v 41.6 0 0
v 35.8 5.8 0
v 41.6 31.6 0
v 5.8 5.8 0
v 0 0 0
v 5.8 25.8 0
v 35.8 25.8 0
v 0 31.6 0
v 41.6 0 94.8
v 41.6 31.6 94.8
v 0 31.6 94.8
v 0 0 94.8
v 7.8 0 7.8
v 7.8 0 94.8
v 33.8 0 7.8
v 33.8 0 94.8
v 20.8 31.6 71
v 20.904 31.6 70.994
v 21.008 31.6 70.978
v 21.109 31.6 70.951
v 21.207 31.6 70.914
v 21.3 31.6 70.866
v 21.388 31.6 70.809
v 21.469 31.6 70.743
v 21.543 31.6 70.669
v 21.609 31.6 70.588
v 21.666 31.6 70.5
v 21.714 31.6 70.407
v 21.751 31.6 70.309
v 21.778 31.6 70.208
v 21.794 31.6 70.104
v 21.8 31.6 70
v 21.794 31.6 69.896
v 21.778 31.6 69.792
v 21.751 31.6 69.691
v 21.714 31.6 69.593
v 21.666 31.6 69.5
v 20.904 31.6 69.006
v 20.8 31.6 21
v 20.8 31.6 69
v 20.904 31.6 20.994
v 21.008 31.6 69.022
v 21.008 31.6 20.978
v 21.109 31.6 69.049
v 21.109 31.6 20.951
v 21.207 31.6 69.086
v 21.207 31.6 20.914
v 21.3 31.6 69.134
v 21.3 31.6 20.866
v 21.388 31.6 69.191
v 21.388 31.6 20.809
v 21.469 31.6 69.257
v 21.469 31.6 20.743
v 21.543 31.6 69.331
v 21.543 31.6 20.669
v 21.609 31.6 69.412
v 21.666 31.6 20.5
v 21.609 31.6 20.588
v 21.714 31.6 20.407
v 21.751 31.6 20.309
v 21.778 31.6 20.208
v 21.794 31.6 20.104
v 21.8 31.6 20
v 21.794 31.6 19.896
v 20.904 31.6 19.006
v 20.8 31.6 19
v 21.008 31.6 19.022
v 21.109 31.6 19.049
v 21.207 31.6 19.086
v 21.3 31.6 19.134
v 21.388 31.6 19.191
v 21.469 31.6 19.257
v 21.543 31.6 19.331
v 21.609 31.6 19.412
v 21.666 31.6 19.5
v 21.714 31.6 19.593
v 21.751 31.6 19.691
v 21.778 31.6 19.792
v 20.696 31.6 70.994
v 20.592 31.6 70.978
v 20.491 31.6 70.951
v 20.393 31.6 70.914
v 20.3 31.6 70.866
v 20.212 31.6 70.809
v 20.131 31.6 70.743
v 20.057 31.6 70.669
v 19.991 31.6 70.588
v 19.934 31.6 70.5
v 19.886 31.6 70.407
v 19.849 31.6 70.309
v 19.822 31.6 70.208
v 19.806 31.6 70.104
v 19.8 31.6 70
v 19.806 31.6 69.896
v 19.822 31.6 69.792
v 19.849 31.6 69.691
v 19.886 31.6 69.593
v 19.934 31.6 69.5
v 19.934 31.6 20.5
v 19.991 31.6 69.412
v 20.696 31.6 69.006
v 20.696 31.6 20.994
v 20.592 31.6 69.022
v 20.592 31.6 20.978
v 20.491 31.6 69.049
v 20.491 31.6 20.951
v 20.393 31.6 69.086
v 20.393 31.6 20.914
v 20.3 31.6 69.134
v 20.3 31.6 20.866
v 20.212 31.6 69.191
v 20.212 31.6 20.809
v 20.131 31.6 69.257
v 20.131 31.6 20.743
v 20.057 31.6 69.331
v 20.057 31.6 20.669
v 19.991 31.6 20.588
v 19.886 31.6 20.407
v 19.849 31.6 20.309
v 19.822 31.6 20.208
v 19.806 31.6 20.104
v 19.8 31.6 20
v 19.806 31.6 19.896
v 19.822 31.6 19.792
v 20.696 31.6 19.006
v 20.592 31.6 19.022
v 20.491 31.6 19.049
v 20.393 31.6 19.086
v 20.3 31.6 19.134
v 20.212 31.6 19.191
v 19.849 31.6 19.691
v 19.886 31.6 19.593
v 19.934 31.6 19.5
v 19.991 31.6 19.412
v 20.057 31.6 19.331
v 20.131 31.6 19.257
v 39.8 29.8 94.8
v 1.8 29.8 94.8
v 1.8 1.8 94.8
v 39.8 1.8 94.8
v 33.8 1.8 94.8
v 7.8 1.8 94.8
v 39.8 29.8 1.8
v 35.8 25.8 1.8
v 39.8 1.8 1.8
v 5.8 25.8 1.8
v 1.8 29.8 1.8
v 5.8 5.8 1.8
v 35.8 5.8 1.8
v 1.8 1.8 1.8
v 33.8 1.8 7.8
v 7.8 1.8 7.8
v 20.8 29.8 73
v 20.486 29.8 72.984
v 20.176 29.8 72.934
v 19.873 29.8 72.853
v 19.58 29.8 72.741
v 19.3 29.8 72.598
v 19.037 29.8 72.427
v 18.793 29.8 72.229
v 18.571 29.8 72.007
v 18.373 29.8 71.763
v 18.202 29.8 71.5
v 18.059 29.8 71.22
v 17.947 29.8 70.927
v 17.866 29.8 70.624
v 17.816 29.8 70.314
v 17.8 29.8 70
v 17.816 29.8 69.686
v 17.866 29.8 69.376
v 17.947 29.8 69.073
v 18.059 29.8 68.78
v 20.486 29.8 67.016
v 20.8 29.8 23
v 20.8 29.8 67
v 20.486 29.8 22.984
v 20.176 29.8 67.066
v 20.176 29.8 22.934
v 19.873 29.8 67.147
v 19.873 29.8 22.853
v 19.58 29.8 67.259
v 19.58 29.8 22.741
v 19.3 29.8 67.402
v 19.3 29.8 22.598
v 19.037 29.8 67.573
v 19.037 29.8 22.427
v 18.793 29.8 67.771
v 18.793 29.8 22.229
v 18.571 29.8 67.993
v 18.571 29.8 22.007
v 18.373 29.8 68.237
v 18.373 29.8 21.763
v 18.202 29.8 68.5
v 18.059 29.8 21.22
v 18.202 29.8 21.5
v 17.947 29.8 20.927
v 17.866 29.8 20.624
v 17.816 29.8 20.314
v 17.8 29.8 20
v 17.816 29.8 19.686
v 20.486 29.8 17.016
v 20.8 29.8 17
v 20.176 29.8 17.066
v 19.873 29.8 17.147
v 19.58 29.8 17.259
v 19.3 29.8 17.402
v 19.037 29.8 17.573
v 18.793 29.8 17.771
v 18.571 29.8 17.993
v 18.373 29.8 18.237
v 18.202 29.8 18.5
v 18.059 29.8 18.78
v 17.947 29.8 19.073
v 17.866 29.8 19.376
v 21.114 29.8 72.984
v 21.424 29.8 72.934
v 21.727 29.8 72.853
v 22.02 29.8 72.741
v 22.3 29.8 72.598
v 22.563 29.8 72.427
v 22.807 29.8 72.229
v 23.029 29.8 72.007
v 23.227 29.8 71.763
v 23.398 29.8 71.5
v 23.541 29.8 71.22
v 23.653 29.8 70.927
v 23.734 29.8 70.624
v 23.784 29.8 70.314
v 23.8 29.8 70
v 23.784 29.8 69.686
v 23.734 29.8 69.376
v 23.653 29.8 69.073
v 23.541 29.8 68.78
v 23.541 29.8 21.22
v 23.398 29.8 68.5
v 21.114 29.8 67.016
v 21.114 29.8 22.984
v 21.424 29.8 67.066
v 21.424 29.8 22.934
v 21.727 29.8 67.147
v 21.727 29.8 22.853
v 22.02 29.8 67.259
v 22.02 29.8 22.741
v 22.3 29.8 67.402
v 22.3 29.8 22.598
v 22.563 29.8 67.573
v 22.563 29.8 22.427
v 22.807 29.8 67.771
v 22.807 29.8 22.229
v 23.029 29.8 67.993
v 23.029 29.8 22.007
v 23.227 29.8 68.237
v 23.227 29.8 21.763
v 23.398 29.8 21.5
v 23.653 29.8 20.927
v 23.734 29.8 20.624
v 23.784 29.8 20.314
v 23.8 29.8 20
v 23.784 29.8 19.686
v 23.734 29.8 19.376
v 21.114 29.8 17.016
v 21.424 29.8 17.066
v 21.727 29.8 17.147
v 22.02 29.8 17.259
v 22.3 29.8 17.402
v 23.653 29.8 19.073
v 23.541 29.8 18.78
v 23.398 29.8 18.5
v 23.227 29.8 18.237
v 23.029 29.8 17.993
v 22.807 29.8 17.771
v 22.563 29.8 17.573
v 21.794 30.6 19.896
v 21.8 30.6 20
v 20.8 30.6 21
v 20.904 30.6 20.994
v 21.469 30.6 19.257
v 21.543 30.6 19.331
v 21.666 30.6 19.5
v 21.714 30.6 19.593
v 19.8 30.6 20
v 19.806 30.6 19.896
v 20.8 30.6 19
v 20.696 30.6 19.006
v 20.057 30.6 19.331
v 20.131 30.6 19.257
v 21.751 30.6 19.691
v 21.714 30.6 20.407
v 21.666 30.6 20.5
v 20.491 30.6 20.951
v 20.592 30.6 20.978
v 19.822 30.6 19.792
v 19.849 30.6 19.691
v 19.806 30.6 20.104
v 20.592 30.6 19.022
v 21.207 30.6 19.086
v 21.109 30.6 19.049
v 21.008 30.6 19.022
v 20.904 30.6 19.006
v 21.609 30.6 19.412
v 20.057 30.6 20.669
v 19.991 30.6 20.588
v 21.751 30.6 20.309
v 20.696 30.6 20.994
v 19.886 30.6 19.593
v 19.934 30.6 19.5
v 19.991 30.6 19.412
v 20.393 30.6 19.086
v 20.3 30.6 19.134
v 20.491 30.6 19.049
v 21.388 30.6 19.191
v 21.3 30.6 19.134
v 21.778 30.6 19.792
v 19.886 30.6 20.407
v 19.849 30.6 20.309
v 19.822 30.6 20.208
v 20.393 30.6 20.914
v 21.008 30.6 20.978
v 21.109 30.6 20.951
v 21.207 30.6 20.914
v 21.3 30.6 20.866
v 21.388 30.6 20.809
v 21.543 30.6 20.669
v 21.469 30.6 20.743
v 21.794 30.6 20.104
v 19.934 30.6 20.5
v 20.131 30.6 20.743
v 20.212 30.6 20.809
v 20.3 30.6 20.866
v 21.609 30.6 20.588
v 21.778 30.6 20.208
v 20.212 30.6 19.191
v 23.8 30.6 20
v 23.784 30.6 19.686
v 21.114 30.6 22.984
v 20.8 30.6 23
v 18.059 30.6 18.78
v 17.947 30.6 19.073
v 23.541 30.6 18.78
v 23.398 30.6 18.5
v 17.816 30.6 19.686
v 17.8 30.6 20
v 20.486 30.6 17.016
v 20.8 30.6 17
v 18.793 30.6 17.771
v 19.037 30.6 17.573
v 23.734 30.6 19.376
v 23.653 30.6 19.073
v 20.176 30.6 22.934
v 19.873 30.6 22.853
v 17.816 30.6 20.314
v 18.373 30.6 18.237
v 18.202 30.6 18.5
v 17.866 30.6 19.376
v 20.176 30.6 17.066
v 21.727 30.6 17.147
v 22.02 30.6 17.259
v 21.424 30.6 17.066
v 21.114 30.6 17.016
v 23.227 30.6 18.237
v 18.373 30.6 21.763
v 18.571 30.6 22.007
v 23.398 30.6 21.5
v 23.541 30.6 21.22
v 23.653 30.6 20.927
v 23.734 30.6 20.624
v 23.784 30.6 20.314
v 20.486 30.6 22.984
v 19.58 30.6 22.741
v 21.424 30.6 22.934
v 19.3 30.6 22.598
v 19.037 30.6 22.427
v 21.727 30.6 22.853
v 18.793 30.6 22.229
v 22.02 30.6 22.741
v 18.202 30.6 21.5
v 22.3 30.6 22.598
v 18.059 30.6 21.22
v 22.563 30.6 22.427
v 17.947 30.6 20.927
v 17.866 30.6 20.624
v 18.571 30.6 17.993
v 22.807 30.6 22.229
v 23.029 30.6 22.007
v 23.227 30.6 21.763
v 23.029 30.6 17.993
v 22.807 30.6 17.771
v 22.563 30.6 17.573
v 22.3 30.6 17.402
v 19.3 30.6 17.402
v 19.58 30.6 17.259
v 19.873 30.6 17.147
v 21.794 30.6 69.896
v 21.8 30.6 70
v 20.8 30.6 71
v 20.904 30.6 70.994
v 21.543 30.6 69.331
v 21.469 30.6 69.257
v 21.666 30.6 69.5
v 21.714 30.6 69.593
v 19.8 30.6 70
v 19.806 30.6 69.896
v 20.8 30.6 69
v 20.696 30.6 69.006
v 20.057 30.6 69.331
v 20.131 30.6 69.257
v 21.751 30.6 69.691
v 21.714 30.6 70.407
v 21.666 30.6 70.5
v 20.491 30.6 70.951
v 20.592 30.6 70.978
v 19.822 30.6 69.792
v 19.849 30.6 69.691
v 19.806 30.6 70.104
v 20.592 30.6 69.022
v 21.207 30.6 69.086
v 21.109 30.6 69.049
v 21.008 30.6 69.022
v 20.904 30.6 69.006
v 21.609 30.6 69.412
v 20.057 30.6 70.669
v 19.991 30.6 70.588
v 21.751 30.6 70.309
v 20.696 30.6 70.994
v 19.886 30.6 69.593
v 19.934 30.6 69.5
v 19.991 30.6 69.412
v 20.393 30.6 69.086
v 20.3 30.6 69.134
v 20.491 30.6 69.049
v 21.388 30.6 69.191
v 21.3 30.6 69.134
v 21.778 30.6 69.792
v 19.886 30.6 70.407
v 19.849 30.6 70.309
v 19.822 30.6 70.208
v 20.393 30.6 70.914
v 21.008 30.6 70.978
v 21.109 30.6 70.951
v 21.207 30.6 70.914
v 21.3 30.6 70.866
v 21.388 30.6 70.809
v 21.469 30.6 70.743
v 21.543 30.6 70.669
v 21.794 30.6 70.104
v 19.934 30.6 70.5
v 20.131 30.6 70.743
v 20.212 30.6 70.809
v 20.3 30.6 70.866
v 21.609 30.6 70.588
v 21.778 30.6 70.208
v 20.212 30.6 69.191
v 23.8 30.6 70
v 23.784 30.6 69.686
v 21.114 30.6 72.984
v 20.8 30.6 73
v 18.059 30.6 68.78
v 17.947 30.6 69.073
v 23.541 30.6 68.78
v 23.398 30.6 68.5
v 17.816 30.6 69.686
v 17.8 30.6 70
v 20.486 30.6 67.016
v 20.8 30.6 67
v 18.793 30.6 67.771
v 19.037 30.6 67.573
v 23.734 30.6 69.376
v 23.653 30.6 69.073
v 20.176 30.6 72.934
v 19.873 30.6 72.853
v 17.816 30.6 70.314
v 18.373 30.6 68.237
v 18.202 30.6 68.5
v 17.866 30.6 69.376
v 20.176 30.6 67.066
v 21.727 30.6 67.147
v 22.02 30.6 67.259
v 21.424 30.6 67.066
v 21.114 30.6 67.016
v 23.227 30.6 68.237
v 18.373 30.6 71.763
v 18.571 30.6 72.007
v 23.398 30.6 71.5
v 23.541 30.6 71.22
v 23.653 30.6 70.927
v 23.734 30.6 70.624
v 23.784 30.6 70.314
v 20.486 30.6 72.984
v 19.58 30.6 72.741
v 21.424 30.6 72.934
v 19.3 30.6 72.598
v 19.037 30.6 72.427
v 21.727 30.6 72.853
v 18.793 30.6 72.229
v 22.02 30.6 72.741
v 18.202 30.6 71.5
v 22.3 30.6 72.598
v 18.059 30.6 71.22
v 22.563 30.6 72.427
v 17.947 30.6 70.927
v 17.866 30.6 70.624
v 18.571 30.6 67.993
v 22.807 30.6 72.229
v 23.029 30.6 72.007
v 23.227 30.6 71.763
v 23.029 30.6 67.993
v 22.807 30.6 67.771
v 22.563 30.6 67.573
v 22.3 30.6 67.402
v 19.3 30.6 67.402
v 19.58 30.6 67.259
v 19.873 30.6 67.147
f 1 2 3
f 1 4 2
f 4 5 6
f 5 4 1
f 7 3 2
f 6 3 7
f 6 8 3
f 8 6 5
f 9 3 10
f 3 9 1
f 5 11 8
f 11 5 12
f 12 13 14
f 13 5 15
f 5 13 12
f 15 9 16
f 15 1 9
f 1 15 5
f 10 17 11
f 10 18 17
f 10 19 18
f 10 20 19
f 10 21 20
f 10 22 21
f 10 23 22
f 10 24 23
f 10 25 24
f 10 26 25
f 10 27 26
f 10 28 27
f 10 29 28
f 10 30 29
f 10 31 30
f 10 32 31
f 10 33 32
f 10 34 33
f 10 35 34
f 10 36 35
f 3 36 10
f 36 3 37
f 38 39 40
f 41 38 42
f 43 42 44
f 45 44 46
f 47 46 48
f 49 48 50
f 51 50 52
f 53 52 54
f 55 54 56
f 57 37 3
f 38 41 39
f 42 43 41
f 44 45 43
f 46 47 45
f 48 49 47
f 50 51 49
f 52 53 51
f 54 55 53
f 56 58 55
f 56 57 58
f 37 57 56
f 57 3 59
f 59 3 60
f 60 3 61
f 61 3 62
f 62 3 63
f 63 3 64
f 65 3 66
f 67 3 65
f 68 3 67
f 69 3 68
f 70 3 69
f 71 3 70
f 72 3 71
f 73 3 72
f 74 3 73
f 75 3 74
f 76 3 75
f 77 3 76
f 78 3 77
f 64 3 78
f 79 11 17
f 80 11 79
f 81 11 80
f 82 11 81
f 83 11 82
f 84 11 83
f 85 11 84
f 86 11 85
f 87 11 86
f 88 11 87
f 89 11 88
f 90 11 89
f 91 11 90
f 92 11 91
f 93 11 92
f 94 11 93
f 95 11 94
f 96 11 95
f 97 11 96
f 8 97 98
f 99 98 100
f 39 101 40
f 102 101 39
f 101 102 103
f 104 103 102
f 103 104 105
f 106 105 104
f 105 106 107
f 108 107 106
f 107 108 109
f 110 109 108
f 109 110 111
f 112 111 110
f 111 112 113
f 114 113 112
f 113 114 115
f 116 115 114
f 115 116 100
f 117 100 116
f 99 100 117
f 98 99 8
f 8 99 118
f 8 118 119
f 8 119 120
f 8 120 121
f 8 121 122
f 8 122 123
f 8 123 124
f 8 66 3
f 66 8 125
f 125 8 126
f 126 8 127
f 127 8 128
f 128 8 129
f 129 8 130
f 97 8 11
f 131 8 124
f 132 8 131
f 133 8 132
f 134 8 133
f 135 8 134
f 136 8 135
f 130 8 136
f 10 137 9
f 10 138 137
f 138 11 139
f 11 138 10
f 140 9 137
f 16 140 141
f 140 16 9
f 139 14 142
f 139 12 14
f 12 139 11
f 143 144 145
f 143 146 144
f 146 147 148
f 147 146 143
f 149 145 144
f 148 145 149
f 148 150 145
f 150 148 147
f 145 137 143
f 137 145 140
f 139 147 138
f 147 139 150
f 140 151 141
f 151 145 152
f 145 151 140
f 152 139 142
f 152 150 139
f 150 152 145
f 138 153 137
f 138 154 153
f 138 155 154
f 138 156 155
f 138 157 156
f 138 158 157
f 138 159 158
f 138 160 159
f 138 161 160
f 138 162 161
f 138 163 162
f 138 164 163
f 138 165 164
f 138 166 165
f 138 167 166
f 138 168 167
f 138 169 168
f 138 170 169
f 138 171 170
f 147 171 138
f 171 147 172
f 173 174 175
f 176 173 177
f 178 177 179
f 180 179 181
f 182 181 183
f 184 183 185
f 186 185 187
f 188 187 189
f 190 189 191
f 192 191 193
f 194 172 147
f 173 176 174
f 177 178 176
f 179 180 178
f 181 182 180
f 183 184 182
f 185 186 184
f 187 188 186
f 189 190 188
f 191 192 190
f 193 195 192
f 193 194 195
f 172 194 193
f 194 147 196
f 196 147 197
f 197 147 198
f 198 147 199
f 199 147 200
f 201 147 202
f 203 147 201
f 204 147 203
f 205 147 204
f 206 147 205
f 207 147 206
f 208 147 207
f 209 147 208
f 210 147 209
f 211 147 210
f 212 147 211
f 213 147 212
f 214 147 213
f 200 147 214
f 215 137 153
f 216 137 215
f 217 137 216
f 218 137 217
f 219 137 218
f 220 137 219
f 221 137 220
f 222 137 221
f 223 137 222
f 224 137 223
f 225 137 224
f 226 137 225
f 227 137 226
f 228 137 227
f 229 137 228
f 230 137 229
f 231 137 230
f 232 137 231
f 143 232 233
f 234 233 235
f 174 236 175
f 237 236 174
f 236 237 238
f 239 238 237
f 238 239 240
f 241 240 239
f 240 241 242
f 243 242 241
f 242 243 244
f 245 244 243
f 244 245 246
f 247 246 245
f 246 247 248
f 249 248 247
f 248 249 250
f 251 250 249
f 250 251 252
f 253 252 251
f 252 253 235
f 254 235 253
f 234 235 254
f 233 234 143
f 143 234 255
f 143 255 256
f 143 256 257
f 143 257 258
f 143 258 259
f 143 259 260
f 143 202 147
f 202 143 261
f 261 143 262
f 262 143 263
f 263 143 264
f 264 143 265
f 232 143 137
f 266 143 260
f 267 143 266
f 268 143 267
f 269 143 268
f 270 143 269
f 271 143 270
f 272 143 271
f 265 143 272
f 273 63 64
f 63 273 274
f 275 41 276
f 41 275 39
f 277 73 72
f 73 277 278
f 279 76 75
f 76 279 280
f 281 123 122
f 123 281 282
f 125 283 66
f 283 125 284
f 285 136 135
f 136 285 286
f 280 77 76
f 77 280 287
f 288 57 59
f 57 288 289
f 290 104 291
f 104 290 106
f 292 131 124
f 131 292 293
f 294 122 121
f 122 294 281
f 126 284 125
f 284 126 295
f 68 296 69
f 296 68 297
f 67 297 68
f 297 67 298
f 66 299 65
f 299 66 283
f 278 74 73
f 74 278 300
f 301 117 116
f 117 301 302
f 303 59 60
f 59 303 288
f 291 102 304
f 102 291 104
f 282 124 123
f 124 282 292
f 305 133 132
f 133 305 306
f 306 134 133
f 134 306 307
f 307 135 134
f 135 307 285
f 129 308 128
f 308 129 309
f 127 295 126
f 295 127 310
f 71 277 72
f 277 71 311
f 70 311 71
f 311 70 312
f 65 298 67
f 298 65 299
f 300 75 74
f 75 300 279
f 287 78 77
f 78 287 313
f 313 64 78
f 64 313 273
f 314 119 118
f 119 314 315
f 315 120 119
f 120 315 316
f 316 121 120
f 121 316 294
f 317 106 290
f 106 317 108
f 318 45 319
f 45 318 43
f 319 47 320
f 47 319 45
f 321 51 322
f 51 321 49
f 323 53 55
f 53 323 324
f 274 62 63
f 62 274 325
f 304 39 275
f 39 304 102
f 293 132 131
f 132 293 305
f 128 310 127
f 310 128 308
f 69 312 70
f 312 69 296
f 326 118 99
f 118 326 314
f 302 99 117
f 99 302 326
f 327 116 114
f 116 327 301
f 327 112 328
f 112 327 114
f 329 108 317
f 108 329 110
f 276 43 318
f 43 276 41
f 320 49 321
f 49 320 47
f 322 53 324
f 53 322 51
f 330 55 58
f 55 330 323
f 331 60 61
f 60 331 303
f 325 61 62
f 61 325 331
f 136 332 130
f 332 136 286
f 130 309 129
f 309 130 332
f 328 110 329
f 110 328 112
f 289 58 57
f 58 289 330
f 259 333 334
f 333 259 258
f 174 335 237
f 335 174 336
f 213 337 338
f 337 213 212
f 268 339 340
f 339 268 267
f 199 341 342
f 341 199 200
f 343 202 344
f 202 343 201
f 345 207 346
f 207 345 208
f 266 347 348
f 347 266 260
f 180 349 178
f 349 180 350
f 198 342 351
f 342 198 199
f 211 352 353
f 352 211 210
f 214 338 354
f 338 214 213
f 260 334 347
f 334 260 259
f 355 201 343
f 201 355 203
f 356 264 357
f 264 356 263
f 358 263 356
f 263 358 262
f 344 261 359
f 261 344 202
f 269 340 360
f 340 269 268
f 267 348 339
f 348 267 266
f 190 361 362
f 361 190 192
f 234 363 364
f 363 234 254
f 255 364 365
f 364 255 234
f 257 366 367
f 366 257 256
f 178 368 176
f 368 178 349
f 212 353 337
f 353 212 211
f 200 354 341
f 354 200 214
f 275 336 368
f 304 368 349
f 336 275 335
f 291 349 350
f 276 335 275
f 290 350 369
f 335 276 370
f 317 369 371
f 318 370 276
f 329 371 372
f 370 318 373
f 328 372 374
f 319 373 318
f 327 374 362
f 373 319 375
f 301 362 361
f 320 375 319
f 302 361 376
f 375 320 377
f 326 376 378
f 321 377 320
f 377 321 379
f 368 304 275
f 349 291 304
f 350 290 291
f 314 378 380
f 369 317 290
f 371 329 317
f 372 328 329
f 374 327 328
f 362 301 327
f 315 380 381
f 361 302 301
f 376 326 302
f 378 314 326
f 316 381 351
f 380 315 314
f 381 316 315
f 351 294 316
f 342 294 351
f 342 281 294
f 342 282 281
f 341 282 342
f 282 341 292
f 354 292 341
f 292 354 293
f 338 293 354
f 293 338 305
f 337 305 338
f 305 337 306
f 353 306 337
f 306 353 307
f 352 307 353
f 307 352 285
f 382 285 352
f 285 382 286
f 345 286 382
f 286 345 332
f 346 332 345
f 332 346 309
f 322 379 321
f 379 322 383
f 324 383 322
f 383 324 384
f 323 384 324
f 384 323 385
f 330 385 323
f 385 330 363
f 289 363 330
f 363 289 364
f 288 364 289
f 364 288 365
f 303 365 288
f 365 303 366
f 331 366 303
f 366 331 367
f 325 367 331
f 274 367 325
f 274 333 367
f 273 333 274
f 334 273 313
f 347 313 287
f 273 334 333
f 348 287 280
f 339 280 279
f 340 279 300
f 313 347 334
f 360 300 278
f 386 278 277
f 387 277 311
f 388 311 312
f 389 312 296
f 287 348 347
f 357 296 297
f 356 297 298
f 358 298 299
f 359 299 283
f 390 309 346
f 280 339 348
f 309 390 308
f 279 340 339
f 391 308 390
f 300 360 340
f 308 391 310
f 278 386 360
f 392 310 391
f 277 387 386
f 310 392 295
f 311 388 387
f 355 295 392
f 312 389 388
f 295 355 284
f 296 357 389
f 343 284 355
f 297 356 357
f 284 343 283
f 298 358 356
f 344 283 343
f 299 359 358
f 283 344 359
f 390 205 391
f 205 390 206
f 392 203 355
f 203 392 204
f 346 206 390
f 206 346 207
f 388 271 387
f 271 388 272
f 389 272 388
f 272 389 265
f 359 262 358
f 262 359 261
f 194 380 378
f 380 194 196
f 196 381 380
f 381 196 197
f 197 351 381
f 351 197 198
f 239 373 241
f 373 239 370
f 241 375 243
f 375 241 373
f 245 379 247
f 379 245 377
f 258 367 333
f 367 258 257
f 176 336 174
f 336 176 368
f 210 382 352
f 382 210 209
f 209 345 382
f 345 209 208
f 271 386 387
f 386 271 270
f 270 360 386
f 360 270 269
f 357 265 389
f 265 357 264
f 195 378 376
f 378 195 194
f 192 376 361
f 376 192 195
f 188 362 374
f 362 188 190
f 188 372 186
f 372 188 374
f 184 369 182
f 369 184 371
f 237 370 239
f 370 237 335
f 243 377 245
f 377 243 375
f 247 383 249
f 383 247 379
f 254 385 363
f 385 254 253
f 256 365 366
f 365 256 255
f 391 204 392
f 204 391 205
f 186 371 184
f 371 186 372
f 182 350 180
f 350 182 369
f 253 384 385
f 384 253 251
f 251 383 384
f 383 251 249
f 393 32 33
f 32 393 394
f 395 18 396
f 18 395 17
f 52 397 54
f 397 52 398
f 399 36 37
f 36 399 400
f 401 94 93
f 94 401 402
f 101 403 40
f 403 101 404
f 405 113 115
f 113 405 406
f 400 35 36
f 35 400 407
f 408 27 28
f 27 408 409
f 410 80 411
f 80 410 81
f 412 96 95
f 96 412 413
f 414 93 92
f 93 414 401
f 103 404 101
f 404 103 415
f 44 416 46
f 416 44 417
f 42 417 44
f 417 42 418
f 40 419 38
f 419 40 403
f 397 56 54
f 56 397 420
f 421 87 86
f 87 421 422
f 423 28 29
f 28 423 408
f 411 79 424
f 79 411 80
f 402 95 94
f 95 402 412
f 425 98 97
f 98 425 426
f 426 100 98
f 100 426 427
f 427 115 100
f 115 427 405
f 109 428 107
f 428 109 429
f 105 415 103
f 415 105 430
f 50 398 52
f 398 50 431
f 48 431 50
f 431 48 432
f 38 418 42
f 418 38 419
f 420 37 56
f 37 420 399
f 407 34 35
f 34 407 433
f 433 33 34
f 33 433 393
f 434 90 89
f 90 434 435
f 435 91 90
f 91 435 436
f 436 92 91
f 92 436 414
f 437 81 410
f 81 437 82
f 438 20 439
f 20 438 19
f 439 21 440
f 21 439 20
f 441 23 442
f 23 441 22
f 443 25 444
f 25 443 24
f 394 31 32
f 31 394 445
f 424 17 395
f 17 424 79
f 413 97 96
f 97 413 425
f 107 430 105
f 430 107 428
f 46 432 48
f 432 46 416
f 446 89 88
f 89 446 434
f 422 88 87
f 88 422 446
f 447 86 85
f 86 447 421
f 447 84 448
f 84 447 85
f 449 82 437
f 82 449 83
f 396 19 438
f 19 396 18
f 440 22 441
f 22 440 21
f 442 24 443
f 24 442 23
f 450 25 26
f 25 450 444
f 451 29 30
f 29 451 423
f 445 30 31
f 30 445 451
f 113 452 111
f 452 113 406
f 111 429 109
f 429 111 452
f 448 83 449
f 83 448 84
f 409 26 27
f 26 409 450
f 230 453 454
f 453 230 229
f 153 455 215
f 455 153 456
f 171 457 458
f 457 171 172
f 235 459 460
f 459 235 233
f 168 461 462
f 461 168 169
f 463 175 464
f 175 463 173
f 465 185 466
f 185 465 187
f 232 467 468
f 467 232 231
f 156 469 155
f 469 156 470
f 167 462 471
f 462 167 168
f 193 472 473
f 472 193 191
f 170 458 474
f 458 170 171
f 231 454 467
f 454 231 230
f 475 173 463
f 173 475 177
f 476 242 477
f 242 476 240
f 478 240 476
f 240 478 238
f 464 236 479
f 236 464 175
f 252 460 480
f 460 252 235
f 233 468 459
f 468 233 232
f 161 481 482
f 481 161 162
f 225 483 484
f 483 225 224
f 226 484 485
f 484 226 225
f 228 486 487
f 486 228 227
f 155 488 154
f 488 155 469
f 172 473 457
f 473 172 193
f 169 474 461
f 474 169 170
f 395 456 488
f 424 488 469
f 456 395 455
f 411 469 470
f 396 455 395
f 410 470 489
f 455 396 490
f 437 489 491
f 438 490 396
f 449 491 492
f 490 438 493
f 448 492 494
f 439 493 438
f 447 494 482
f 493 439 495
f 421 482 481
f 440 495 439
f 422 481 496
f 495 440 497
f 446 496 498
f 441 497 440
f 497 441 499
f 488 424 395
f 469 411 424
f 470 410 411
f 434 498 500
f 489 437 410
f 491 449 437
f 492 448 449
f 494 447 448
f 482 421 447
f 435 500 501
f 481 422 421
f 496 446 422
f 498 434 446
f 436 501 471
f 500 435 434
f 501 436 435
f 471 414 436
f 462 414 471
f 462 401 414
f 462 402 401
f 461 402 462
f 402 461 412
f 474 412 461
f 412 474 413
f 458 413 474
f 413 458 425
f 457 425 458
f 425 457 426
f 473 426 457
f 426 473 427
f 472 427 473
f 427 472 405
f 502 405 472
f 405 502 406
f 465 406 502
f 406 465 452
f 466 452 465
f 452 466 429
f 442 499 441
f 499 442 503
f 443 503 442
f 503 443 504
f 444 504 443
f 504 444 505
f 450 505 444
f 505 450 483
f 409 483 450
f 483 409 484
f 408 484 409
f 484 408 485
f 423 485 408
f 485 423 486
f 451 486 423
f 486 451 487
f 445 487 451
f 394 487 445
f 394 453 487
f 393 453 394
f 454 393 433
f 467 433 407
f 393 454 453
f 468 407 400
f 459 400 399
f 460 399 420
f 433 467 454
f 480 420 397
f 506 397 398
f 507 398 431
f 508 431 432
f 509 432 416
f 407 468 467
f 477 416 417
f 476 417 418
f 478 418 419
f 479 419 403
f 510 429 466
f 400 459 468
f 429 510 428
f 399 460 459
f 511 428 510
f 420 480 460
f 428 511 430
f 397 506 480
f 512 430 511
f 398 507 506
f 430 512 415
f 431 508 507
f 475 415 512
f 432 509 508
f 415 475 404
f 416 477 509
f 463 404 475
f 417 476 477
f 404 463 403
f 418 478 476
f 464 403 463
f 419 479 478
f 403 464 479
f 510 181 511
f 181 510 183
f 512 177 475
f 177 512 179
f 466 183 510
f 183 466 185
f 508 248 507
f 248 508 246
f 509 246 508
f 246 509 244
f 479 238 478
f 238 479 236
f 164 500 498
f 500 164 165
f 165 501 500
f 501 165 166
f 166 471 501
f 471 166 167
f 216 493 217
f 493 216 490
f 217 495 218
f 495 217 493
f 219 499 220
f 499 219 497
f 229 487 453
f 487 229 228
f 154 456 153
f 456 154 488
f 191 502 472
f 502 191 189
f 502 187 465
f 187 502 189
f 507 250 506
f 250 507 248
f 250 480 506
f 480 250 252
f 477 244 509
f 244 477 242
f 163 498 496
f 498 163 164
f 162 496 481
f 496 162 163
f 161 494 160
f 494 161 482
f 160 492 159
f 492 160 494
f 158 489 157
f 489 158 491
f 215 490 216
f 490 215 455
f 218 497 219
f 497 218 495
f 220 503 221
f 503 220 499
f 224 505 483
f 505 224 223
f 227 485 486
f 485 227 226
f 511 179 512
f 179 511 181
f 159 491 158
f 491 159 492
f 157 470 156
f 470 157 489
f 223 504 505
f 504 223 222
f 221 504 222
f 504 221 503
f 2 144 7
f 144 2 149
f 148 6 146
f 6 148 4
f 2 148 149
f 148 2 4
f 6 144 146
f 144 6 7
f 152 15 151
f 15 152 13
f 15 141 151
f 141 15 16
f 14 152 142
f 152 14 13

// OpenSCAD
//$fn => number of fragments, increase to create higher res rendering for 3D printing 
$fn=60;

//dimensions of power supply
WIDTH = 38;
HEIGTH = 28;
LENGTH = 93;

BASE_OPENING_WIDTH = 30;
BASE_OPENING_HEIGHT = 20;

FRONT_OPENING_OFFSET = 6;

WALL_THICKNESS = 1.8;

HOLE_SIZE = 1;
COUNTER_SINK_DEPTH = 0.8;


outter_cube_width = WIDTH + WALL_THICKNESS*2;
outter_cube_height = HEIGTH + WALL_THICKNESS*2;
module outter_cube(){
    linear_extrude(height = LENGTH + WALL_THICKNESS)
        square([outter_cube_width, outter_cube_height]);
}

module inner_cube() {
    translate([WALL_THICKNESS, WALL_THICKNESS, WALL_THICKNESS])    
        linear_extrude(height = LENGTH)
            square([WIDTH, HEIGTH]);   
}

module hollow_box(){
    difference(){
        outter_cube();
        inner_cube();
    }
}

base_opening_x_offset = (outter_cube_width - BASE_OPENING_WIDTH)/2;
base_opening_y_offset = (outter_cube_height - BASE_OPENING_HEIGHT)/2;
module base_opening(){
    linear_extrude(height = WALL_THICKNESS)
        translate([base_opening_x_offset, base_opening_y_offset, 0])
            square([BASE_OPENING_WIDTH ,BASE_OPENING_HEIGHT ]);
}

front_opening_width = WIDTH - (FRONT_OPENING_OFFSET * 2);
front_opening_x_offset = FRONT_OPENING_OFFSET + WALL_THICKNESS;
front_opening_z_offset = FRONT_OPENING_OFFSET + WALL_THICKNESS;
module front_opening(){
    translate([front_opening_x_offset, 0, front_opening_z_offset])
        linear_extrude(height = LENGTH)
            square([front_opening_width ,WALL_THICKNESS ]);
}


module mounting_hole(){
    union(){
        translate([0, HEIGTH + WALL_THICKNESS*2, 0]){
            rotate([90, 0, 0])    
                linear_extrude(height = WALL_THICKNESS) circle(HOLE_SIZE);
        }
        translate([0, HEIGTH+WALL_THICKNESS+COUNTER_SINK_DEPTH, 0]){
            rotate([90, 0, 0])    
                linear_extrude(height = COUNTER_SINK_DEPTH) circle(HOLE_SIZE*3);
        }
    }      
}

center_back = outter_cube_width/2;

difference(){
    hollow_box();
   # union(){
        base_opening();
        front_opening();
        translate([center_back, 0, 20])  mounting_hole();
        translate([center_back, 0, 70])  mounting_hole();
    }
}


    
